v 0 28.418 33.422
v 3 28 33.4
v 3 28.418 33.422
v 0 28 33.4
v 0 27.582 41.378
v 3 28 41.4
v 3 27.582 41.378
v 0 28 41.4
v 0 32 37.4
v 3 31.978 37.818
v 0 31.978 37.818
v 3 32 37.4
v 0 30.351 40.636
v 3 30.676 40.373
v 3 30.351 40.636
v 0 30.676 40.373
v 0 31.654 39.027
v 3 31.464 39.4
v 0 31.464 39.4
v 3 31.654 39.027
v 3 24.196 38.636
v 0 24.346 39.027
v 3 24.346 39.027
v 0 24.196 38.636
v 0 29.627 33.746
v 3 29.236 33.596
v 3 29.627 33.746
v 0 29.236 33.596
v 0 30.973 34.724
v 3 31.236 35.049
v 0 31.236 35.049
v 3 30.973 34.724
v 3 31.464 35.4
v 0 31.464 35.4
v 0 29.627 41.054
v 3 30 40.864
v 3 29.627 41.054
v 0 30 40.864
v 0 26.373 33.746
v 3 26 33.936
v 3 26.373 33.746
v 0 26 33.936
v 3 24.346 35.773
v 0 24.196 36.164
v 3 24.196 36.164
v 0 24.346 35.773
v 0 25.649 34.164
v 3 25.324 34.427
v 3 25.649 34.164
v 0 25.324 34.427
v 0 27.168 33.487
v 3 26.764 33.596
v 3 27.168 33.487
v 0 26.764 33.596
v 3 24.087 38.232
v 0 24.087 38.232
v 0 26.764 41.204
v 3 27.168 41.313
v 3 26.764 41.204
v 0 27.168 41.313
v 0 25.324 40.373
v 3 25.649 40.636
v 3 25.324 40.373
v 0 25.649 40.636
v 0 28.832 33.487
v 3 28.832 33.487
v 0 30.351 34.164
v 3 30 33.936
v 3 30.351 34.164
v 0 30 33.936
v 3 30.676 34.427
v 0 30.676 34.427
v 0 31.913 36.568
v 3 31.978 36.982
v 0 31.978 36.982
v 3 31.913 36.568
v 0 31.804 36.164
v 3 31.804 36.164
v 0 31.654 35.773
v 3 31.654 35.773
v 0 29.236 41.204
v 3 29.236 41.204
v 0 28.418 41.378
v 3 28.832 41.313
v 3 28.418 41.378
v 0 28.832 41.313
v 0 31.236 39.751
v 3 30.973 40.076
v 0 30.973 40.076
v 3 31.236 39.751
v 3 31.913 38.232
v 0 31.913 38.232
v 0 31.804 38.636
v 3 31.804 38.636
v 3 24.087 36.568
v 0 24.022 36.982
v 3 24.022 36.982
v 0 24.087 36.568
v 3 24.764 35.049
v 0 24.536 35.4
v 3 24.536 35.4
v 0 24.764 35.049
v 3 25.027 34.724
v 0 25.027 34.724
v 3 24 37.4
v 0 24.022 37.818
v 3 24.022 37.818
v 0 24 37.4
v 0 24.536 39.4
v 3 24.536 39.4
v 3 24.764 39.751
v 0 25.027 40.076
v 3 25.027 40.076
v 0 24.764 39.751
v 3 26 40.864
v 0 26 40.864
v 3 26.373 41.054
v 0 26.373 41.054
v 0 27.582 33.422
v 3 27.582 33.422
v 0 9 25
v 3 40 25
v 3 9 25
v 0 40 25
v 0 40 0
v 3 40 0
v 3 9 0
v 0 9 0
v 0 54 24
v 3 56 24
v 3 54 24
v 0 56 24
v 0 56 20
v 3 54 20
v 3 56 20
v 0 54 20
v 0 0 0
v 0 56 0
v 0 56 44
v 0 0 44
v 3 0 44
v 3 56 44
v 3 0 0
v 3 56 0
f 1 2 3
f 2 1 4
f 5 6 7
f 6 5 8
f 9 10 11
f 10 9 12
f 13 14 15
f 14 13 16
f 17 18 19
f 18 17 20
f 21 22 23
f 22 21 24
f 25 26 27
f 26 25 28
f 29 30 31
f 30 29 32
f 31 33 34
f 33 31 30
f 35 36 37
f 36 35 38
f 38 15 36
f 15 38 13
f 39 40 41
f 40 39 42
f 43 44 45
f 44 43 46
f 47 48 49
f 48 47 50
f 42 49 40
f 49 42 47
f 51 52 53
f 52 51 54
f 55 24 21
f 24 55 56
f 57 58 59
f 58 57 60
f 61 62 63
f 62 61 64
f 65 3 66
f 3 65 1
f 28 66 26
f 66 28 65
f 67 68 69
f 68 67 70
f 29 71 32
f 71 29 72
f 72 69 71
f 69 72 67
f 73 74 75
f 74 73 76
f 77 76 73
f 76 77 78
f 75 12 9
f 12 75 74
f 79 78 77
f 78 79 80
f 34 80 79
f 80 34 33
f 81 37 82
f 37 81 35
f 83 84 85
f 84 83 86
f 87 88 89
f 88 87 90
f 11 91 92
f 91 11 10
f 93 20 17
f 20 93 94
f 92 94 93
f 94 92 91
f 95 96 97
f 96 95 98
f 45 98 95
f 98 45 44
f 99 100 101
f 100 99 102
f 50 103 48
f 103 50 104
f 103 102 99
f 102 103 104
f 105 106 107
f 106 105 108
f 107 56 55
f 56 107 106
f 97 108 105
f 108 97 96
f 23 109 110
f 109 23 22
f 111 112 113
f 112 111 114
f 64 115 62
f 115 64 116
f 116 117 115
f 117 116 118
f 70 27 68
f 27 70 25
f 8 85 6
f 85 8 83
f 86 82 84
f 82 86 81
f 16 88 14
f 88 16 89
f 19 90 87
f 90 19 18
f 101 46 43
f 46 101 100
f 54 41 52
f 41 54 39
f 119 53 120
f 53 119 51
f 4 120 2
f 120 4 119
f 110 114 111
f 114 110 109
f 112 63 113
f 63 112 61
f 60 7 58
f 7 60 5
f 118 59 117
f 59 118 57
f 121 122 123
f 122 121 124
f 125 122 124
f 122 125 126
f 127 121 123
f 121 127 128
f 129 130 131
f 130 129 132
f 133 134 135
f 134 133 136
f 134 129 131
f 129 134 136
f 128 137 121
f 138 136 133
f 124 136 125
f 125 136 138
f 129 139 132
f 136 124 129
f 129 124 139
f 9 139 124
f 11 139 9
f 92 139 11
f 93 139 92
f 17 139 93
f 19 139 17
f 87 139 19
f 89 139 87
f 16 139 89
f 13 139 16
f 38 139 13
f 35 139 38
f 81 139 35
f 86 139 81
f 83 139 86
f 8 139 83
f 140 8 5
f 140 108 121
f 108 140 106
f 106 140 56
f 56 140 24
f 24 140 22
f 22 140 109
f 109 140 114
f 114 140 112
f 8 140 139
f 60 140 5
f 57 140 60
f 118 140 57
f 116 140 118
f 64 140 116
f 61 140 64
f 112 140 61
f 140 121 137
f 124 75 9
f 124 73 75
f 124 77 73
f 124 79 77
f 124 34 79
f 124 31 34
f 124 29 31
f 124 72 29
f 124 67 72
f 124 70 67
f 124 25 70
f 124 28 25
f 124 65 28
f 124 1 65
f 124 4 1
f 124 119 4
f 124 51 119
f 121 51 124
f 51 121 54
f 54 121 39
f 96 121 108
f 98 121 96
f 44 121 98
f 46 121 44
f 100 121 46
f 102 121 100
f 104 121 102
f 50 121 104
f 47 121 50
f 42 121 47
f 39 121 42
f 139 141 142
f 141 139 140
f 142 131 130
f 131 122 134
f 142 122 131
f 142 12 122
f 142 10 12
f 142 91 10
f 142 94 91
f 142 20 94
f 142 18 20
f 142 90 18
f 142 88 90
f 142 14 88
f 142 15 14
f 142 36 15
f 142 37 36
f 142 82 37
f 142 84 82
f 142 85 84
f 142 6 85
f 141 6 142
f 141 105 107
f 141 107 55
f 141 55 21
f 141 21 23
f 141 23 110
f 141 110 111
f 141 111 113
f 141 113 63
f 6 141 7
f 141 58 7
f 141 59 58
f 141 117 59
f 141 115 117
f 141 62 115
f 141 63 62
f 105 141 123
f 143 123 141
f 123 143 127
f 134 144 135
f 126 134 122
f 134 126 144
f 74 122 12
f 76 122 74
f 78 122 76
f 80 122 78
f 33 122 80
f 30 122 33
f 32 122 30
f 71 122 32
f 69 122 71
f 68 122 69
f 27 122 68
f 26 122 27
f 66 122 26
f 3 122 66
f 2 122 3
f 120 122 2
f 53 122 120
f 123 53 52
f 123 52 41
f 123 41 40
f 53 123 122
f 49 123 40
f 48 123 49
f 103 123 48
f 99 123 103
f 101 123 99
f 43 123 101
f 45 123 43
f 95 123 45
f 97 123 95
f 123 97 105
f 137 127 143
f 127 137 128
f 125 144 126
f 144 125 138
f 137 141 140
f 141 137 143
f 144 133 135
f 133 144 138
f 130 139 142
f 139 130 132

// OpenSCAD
wallthickness = 3;
bottomthickness = 6;

length = 90;
width = 62;
height = 53;

squeezeFactor = 0;
LEDholeradius = 4;

depth =3;

inner_width  = width-(wallthickness*2)-squeezeFactor;
inner_height = height-(wallthickness+bottomthickness) - squeezeFactor;

difference(){
cube([depth,inner_width,inner_height]);
    union() {
         translate([-1,inner_width/2,inner_height*0.85]) 
         rotate([0,90,0])
         cylinder(h=10,r=LEDholeradius,$fn = 60);
         
         // For the cables: From y = 9 to 40 mm, from z = 0 to 25 mm
         translate([-1,9,-1])
         cube([10,31,25+1]);
        
        // Hole to put a (small) screwdriver in to pull it out
        // 4 mm by 2 mm
        translate([-1,inner_width-2,inner_height/2-2])
        cube([10,2+1,4]);
    }
}
